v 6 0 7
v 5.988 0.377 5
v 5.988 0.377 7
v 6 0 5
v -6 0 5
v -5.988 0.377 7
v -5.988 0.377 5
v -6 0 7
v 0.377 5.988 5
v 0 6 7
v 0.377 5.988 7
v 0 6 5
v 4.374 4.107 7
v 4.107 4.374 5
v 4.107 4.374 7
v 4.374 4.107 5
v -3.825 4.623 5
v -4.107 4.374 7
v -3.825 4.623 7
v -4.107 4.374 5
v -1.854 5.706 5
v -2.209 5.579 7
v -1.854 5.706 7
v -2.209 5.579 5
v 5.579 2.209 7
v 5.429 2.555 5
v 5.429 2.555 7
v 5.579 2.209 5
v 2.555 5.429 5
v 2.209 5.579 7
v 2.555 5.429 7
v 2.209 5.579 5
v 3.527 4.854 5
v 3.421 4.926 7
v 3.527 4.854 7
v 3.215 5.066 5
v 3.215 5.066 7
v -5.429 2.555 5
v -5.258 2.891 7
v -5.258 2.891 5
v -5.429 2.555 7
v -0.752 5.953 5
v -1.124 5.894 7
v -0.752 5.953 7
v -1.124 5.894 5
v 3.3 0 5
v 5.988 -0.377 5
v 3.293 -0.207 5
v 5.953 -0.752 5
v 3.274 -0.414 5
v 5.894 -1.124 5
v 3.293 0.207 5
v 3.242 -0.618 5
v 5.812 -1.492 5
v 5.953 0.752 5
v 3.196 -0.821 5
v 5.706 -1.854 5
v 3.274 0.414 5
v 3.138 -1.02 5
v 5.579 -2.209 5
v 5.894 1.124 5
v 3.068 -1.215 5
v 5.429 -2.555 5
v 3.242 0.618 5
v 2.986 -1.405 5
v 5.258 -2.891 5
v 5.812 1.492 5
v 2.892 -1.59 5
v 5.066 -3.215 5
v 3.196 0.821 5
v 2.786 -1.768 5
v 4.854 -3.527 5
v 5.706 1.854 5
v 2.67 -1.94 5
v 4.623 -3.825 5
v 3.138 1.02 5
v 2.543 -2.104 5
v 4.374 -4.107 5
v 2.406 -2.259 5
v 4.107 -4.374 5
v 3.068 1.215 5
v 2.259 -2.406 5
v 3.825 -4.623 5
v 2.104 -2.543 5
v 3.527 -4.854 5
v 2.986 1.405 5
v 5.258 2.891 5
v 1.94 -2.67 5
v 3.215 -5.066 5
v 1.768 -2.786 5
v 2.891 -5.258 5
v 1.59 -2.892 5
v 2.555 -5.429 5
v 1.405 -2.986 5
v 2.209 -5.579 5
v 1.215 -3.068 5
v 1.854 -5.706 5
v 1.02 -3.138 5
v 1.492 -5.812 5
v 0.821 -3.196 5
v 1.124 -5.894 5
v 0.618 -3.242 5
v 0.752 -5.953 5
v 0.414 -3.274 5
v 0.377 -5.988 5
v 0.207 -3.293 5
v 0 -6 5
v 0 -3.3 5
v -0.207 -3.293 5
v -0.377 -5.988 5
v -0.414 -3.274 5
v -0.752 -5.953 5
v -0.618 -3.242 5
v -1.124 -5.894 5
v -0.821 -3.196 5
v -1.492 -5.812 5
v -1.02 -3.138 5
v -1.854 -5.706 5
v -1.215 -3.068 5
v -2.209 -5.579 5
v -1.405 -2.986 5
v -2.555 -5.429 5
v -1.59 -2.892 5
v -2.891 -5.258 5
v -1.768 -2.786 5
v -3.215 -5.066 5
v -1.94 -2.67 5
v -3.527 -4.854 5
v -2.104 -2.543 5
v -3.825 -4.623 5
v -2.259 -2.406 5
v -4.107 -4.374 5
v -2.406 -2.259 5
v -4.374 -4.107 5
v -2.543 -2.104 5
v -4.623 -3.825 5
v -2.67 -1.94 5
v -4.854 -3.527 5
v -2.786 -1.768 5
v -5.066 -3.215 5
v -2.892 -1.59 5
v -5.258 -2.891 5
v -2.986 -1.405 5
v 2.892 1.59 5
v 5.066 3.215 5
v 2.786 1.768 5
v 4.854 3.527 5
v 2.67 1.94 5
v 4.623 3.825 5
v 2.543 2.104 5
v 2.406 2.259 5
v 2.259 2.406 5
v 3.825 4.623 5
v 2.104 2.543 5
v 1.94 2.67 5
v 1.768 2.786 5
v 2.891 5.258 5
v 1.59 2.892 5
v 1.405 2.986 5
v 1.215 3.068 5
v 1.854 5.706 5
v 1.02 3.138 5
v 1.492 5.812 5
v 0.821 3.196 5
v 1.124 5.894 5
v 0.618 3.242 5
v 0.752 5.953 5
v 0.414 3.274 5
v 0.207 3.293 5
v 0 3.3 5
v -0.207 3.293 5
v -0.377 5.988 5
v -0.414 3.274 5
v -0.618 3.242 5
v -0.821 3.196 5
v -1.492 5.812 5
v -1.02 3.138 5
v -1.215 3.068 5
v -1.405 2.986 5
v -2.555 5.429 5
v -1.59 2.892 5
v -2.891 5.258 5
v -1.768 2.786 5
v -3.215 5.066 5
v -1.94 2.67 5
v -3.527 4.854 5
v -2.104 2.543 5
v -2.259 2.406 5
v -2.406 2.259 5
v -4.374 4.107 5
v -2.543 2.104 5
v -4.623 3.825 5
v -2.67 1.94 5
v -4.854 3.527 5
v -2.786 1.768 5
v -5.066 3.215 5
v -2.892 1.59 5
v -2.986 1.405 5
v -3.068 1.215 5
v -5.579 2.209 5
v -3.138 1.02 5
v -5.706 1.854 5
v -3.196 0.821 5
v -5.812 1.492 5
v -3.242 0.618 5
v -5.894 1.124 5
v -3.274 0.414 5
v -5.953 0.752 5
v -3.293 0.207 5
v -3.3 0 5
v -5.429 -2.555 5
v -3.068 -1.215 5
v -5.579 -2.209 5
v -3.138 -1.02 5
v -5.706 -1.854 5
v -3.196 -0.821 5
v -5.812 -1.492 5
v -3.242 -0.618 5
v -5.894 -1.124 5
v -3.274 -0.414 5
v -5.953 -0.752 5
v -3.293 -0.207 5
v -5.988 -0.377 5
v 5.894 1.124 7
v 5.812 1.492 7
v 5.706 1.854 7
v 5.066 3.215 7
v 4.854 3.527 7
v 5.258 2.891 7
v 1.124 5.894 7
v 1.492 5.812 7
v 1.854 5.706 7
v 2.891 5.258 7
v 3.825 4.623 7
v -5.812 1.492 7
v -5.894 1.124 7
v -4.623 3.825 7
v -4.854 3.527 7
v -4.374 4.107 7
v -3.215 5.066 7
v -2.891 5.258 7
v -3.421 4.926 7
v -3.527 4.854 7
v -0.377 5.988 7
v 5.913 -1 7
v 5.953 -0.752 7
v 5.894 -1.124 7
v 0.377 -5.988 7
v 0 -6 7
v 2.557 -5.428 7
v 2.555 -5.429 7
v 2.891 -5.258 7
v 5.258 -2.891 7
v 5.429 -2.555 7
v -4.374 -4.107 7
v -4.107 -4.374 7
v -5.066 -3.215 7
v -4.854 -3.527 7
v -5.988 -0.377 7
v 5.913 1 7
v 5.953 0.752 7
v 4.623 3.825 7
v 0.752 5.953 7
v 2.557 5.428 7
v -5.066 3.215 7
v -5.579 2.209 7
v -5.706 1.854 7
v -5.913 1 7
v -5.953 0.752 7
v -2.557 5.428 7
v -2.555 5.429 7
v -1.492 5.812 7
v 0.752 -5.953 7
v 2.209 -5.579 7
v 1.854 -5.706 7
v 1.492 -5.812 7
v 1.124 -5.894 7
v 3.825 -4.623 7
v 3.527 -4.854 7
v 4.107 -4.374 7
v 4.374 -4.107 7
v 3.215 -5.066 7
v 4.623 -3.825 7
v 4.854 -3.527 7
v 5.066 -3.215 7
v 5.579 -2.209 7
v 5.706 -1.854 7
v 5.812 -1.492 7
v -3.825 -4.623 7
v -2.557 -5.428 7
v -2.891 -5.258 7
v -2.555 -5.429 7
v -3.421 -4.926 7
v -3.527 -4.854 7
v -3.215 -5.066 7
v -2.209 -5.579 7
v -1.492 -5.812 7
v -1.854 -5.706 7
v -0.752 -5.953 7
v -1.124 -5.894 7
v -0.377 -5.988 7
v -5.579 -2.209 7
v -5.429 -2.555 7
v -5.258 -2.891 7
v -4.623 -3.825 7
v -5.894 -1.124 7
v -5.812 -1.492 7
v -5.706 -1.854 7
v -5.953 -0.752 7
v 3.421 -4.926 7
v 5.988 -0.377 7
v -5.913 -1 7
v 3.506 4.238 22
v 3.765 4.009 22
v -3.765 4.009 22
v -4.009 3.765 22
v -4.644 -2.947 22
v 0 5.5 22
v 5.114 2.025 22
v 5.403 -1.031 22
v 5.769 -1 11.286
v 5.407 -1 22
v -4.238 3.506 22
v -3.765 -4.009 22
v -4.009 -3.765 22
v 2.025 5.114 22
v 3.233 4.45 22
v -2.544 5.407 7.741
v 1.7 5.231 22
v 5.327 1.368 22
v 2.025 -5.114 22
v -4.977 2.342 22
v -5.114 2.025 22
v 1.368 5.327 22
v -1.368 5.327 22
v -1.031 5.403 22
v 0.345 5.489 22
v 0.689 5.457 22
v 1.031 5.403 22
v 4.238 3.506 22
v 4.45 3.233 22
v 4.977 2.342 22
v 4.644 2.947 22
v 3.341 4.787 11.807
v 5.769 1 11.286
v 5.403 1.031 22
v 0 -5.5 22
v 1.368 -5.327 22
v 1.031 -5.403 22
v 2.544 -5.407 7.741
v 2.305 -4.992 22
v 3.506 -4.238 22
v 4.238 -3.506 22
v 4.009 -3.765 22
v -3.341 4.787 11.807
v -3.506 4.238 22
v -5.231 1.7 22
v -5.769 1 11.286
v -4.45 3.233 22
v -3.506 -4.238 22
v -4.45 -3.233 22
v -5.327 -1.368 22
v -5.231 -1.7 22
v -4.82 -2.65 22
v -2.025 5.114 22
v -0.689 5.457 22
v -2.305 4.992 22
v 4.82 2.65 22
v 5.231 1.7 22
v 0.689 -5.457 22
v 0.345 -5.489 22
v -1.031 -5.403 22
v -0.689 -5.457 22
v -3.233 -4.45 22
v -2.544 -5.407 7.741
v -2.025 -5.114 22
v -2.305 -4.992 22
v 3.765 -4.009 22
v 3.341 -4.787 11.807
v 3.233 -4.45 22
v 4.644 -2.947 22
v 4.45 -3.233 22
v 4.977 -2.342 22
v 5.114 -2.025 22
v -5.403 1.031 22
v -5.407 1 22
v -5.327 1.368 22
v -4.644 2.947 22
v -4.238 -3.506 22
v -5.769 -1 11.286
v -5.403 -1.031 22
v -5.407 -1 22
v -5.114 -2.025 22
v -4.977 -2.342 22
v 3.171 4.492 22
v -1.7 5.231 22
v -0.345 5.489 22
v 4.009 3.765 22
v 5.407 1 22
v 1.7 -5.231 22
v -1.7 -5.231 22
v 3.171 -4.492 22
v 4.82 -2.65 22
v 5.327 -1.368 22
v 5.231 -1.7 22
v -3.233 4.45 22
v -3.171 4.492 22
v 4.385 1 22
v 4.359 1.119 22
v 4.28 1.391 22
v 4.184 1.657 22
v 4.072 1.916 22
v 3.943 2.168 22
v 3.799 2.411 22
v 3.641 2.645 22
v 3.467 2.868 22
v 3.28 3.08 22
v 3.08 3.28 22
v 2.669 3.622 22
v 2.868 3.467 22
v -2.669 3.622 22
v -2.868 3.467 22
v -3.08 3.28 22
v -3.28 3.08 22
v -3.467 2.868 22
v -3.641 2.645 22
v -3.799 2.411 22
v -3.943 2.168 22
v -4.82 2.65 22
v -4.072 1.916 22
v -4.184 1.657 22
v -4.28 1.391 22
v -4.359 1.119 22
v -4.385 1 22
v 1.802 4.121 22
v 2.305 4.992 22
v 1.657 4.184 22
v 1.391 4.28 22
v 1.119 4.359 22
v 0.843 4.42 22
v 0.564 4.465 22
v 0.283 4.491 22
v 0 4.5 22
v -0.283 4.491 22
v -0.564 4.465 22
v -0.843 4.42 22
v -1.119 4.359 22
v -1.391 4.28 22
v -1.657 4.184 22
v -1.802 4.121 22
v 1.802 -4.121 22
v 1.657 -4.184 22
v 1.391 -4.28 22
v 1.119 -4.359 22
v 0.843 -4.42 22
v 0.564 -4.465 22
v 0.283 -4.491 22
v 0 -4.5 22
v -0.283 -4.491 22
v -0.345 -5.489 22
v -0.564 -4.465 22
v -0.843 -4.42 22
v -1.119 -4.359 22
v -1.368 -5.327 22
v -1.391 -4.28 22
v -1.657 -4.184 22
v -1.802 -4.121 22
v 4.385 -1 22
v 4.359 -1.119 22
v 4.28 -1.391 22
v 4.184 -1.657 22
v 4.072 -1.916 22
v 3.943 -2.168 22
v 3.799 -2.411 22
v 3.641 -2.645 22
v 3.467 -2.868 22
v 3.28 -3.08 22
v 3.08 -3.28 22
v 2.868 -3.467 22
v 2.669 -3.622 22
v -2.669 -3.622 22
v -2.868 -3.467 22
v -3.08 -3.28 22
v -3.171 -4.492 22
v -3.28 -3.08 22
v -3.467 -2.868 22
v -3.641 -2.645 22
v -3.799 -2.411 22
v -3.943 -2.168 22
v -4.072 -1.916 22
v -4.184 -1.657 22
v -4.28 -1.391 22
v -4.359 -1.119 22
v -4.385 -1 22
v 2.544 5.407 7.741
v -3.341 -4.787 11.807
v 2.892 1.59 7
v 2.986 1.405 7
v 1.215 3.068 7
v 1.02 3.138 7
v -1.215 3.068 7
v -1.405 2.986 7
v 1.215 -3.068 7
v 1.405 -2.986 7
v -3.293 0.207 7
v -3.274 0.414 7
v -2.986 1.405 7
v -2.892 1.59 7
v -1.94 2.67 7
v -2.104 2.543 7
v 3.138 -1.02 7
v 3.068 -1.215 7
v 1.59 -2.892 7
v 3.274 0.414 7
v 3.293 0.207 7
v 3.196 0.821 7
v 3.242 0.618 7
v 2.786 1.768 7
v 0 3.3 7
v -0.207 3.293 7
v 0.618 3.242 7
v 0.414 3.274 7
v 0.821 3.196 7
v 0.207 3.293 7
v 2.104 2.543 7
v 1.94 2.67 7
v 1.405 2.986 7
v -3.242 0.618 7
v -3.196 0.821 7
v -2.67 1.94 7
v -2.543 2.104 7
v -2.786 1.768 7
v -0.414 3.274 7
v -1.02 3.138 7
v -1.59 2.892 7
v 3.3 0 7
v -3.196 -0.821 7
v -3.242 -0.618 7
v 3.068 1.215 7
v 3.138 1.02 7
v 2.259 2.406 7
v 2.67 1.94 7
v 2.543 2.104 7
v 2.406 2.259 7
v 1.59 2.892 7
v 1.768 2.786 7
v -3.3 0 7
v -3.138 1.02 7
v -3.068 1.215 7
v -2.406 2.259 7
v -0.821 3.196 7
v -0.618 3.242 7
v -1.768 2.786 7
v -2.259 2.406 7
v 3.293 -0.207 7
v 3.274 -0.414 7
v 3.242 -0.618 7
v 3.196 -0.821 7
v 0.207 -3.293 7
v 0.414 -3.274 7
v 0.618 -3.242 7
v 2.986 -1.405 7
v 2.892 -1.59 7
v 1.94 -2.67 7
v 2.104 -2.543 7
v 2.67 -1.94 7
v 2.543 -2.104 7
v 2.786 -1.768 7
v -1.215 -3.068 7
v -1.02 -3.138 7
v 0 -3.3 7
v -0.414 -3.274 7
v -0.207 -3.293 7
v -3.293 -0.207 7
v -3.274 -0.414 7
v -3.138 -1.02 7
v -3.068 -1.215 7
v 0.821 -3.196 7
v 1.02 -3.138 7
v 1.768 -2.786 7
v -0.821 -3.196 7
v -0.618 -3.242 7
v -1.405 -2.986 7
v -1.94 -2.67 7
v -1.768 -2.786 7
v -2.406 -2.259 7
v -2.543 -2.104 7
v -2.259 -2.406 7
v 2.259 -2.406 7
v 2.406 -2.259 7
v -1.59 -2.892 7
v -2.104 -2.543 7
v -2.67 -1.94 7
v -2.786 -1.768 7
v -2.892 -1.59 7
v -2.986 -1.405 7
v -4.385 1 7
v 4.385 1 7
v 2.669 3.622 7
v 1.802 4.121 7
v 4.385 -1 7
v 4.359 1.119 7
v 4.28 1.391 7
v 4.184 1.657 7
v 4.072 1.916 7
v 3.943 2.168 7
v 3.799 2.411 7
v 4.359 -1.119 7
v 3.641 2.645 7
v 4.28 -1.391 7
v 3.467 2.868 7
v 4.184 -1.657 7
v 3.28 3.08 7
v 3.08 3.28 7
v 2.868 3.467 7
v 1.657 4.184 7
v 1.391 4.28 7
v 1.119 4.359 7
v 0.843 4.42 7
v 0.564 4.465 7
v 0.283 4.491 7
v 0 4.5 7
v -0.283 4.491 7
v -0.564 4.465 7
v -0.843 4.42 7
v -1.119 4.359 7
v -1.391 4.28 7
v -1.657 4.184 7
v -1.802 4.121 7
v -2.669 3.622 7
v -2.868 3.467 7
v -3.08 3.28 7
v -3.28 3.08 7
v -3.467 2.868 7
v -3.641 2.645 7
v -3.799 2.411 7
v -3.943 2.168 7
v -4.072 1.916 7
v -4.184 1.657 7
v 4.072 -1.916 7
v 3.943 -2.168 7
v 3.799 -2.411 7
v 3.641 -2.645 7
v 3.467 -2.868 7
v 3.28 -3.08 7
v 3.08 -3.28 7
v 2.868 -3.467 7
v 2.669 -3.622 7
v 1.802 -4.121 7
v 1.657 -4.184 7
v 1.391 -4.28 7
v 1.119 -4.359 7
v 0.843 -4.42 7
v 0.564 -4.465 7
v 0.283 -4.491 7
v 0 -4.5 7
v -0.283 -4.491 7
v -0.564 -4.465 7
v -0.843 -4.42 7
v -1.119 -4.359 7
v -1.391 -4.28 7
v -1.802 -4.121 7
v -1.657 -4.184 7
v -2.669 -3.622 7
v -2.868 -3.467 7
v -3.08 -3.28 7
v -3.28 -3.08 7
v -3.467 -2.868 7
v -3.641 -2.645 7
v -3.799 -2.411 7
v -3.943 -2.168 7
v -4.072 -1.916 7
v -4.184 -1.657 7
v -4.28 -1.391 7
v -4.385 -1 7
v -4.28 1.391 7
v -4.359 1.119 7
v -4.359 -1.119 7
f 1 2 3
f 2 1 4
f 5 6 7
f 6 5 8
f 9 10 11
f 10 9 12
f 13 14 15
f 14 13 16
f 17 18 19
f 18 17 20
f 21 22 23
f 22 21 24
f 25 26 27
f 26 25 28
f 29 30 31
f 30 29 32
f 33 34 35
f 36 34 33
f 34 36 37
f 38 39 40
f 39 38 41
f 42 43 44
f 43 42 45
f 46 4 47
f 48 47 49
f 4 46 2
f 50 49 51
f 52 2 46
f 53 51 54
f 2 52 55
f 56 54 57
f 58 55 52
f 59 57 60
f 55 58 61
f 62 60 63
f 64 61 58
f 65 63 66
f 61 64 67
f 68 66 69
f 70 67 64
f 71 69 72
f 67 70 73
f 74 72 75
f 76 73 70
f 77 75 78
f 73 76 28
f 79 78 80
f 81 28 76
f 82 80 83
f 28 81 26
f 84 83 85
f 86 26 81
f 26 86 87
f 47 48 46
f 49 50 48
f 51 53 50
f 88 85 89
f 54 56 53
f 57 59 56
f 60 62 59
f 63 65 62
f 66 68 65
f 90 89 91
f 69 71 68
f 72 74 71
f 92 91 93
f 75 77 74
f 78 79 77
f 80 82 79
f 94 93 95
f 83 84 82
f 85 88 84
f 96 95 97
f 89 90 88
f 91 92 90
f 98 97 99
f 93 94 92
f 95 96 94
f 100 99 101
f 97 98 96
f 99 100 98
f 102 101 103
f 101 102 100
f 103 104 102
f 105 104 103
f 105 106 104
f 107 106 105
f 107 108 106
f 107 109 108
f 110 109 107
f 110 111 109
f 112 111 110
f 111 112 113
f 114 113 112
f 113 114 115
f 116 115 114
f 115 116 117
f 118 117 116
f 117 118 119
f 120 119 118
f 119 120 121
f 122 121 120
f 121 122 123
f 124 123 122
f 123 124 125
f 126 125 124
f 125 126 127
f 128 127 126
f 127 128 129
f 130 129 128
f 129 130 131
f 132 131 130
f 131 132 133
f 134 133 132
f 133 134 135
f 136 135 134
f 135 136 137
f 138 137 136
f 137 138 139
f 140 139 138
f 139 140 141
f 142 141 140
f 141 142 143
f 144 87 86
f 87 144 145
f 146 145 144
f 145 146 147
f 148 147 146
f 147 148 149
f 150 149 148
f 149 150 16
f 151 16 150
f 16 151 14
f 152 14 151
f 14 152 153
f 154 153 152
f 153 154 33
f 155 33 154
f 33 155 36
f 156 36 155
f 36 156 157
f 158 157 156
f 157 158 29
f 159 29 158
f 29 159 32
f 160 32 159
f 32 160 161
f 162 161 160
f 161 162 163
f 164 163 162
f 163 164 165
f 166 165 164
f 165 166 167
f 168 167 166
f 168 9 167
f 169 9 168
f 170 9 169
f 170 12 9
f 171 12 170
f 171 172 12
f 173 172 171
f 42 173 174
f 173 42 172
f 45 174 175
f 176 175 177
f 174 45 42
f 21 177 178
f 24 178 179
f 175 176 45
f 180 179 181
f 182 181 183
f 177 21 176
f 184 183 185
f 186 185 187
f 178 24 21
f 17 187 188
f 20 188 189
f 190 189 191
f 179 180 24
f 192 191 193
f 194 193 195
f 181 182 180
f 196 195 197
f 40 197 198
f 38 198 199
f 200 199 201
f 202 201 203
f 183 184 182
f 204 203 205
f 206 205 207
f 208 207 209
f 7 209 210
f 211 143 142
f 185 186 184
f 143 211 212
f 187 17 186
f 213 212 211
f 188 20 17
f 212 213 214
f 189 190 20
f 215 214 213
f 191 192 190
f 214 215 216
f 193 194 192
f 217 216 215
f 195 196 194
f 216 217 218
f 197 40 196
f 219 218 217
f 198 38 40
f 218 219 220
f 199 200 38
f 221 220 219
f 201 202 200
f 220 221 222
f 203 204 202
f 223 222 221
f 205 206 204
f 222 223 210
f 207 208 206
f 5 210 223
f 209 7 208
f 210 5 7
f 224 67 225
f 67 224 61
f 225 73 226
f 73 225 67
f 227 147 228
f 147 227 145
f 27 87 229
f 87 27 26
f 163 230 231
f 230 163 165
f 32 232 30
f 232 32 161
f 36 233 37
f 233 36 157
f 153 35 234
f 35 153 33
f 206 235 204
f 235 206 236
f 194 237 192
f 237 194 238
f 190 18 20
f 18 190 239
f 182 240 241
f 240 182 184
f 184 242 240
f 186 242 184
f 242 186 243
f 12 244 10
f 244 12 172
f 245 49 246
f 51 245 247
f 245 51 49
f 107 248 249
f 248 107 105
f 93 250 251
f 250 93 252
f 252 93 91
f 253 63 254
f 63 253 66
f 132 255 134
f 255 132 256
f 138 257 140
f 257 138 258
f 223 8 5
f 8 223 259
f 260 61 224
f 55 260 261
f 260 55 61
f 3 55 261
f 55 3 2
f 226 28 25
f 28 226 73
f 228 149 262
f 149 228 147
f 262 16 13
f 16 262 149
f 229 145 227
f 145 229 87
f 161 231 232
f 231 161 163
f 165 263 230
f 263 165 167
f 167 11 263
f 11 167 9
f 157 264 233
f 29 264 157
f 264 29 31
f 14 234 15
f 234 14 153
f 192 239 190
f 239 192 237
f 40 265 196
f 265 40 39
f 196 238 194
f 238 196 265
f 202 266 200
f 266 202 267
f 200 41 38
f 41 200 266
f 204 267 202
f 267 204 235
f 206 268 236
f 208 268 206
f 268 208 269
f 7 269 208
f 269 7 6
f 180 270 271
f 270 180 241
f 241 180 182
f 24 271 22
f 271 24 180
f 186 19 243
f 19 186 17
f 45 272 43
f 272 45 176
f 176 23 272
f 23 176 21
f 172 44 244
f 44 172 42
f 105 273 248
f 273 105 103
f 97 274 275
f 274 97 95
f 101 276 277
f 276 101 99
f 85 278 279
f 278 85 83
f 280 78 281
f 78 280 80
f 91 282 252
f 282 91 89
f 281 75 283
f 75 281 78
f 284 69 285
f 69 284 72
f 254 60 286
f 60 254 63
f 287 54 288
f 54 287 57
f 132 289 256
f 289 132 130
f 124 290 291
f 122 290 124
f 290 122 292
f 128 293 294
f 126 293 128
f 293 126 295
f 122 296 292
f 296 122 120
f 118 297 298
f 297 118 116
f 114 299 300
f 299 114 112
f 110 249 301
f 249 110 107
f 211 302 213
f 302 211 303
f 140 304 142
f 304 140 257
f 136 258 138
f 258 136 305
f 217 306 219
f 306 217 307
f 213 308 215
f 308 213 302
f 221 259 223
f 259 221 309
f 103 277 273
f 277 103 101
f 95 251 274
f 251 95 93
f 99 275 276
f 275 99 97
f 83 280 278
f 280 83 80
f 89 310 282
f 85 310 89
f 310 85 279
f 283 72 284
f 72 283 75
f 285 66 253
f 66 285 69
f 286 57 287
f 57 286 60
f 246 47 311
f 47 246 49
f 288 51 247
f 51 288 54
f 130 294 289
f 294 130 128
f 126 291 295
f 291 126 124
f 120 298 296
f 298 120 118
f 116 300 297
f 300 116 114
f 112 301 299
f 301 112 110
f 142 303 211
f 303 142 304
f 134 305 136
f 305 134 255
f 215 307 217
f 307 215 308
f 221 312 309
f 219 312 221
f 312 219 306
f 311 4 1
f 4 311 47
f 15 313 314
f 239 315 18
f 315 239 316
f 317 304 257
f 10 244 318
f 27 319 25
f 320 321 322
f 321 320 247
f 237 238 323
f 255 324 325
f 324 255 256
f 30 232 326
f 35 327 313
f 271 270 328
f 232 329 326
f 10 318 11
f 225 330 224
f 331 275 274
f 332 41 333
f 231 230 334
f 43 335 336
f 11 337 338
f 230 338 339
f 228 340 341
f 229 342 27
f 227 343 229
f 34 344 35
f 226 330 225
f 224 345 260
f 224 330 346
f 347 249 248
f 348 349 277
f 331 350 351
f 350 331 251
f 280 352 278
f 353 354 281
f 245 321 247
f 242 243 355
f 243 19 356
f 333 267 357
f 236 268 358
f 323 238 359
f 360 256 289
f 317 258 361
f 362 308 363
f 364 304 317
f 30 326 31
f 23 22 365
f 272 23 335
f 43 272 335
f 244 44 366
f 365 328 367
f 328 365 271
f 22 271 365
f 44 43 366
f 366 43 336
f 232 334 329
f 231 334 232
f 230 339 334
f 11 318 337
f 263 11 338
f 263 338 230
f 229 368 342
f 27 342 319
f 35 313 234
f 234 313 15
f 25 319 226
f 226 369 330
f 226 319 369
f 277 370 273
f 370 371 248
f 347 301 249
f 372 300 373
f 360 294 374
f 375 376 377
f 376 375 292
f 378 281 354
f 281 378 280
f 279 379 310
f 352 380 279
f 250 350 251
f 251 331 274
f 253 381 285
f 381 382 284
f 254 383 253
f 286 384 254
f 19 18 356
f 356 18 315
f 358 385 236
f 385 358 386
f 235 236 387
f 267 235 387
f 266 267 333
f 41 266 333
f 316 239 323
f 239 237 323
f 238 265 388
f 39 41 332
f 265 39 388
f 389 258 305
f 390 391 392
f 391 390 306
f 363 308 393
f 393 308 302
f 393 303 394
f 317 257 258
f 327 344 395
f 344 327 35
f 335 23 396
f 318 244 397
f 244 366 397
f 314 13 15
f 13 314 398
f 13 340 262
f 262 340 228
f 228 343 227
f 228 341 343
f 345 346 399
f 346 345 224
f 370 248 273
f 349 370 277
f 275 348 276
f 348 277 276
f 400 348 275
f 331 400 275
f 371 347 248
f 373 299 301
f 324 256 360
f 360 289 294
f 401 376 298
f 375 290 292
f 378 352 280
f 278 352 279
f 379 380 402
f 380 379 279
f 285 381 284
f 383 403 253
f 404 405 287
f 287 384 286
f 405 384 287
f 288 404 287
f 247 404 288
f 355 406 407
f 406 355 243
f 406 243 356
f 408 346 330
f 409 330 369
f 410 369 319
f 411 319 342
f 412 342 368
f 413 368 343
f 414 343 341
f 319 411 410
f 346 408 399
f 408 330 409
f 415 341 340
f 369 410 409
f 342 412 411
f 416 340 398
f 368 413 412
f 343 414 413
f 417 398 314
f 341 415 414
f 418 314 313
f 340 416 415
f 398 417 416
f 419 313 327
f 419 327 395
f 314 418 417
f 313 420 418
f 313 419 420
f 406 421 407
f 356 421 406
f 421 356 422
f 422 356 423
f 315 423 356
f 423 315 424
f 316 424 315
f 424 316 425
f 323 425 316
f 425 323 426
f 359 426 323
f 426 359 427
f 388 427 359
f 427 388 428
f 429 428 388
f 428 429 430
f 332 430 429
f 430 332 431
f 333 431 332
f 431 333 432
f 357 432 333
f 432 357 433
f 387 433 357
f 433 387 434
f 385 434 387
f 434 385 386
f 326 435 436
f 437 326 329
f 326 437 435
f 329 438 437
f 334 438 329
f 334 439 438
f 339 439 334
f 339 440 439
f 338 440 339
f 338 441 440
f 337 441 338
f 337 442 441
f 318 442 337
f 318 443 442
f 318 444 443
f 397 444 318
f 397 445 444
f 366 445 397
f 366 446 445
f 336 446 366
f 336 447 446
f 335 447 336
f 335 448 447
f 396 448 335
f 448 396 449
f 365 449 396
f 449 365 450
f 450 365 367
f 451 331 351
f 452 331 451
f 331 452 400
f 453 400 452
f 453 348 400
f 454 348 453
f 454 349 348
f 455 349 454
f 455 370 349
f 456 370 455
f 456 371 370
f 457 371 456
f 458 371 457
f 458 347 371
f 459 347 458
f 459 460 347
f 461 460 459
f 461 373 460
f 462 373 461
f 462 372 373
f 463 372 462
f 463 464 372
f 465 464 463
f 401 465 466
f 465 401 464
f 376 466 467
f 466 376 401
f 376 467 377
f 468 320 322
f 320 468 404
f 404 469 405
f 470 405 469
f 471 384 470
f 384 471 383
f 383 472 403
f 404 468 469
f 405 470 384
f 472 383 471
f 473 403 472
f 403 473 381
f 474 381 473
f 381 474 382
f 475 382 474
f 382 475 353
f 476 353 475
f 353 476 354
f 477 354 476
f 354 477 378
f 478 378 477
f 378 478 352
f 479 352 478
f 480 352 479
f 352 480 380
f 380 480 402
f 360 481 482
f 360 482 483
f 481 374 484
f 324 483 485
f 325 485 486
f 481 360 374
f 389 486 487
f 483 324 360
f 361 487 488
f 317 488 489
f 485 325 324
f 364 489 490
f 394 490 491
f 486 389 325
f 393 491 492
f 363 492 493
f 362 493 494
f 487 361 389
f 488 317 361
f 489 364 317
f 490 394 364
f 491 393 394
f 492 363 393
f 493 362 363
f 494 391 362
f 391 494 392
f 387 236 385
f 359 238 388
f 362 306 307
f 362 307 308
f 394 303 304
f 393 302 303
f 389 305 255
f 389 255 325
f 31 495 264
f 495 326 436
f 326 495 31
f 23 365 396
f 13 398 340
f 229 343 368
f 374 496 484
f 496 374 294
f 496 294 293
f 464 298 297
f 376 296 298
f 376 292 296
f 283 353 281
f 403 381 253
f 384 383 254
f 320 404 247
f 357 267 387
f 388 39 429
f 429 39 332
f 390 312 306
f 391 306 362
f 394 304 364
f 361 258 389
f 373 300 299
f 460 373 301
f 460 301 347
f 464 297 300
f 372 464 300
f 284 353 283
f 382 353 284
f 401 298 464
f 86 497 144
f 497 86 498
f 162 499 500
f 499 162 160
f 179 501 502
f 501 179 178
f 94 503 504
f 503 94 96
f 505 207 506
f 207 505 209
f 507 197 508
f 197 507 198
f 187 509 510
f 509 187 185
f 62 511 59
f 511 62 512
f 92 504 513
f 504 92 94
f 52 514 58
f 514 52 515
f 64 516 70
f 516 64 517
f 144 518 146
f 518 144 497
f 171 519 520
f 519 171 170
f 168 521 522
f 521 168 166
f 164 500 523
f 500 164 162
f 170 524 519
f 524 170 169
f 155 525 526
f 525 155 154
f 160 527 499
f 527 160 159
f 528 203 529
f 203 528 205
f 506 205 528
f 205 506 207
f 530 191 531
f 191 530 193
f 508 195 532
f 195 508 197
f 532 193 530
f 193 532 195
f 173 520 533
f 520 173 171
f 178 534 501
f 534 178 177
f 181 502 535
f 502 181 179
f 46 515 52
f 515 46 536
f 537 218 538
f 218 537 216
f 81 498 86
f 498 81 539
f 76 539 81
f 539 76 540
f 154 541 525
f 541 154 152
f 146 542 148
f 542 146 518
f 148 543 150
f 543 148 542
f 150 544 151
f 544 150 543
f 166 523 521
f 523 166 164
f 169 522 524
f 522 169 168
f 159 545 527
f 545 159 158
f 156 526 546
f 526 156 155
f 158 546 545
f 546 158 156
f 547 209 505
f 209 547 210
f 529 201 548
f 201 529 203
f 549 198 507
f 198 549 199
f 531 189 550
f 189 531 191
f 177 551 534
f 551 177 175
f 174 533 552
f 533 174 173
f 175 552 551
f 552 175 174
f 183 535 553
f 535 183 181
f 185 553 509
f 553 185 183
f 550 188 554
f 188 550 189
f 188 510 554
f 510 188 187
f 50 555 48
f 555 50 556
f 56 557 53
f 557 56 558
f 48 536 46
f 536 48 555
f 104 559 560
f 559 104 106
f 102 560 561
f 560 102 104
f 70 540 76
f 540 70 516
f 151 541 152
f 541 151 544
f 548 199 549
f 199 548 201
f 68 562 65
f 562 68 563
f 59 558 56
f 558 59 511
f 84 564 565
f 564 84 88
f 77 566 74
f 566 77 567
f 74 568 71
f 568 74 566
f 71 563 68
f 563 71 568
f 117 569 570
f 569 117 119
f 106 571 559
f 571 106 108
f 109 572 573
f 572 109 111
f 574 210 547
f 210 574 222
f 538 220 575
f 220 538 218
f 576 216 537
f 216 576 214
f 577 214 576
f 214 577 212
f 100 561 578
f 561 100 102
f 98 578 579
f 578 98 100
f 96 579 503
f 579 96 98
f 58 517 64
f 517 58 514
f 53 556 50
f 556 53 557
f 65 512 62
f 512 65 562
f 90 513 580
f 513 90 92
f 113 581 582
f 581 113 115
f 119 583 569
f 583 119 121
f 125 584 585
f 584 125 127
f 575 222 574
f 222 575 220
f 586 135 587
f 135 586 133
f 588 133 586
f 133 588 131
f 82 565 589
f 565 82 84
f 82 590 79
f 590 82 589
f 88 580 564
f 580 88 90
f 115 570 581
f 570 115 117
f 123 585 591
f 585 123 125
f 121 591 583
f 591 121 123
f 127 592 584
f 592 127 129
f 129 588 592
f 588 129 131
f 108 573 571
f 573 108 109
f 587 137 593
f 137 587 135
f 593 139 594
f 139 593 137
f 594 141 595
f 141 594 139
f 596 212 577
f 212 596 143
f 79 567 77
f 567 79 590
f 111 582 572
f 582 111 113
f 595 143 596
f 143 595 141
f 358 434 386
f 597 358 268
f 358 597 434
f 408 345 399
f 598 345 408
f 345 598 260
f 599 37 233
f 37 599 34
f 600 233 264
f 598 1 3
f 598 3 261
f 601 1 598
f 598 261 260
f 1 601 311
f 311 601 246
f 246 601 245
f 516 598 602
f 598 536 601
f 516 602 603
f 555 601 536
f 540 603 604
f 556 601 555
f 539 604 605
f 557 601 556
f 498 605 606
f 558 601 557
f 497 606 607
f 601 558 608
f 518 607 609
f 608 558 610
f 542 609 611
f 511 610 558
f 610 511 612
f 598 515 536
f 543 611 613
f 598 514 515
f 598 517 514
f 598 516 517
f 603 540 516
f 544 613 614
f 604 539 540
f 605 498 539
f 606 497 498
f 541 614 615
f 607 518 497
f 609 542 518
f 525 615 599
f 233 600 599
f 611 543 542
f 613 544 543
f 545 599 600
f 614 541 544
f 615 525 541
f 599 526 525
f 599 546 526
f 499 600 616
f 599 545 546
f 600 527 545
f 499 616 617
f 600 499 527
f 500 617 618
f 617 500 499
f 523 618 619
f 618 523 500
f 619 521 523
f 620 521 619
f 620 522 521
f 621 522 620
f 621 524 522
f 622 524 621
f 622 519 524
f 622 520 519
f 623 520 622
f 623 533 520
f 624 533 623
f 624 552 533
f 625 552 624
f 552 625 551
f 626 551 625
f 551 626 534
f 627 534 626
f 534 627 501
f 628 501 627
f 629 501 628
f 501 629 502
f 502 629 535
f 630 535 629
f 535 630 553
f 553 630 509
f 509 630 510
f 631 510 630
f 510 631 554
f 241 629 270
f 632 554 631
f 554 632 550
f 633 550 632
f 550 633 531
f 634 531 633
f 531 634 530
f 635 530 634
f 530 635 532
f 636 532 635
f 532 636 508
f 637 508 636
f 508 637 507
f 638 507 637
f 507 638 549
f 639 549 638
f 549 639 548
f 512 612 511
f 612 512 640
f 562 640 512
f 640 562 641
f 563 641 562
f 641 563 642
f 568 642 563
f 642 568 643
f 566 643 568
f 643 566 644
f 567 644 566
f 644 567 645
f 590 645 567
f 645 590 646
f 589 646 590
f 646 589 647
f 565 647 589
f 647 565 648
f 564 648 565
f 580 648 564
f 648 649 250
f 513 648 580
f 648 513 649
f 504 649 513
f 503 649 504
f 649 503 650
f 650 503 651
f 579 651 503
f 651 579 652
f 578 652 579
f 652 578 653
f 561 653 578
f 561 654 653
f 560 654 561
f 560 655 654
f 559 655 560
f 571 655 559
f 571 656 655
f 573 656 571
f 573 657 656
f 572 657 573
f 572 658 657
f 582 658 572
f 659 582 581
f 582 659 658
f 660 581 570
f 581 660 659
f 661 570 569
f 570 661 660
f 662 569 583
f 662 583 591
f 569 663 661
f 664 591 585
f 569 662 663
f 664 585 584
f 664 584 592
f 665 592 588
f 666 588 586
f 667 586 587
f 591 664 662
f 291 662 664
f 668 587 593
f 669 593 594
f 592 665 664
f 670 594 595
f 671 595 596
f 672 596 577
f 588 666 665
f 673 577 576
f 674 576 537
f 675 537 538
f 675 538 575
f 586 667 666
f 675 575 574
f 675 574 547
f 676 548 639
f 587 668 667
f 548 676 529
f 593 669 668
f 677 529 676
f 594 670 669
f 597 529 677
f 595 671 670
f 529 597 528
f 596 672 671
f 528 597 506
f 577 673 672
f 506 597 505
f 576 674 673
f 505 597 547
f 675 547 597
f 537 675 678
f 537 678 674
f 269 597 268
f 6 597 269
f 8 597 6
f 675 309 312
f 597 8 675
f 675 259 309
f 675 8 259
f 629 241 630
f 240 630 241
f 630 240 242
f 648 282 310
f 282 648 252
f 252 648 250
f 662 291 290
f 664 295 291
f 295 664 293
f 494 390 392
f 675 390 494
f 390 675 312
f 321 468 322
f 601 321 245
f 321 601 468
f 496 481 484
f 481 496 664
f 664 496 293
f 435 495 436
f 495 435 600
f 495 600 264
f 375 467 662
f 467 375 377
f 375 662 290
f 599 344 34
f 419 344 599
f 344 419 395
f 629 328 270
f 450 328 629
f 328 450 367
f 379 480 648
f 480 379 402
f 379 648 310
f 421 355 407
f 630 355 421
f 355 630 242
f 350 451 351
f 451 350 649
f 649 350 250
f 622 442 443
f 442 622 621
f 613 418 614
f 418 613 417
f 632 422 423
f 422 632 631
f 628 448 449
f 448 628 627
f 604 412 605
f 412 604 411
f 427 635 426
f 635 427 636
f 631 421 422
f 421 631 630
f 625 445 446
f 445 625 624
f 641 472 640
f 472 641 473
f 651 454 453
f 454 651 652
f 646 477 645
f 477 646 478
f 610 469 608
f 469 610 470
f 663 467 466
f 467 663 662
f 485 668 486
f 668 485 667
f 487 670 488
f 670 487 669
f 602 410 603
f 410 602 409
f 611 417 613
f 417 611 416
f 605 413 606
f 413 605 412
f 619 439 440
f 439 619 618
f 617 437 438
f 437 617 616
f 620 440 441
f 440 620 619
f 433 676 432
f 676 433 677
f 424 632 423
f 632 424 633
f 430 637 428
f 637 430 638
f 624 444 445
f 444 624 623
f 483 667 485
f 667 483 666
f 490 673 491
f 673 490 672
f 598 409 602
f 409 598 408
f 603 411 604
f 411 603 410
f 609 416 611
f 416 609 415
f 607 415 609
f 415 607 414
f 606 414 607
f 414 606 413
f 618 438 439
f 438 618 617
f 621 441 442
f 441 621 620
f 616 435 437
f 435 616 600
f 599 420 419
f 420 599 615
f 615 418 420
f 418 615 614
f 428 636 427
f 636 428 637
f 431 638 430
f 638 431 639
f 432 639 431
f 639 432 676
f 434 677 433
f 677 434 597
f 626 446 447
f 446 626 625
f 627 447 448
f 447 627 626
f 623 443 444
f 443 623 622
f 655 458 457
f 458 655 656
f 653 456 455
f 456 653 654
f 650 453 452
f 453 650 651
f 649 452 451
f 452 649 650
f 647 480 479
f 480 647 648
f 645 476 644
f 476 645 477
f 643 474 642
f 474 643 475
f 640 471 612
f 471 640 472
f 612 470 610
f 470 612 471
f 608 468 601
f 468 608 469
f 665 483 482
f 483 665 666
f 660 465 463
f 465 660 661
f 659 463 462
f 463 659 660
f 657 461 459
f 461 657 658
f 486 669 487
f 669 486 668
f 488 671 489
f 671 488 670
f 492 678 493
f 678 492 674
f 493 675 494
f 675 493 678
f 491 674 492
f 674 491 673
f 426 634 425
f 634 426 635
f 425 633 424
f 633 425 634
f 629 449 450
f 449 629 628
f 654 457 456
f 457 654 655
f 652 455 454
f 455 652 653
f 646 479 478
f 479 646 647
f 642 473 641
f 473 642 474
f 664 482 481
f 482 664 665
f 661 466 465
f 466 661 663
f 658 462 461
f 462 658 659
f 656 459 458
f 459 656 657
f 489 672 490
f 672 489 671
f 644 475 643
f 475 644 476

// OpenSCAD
difference() {
	union() {
		translate(v = [0, 0, 5]) {
			cylinder($fn = 100, d = 12, h = 2);
		}
		translate(v = [0, 0, 7]) {
			cylinder($fn = 100, d1 = 12, d2 = 11, h = 15);
		}
	}
	cylinder($fn = 100, d = 6.6000000000, h = 100);
	translate(v = [0, 0, 7]) {
		translate(v = [-8.0000000000, -1.0000000000, 0]) {
			cube(size = [16, 2, 100]);
		}
	}
	rotate(a = [0, 0, 0.0000000000]) {
		translate(v = [0, 0, 7]) {
			translate(v = [-8.0000000000, -0.5000000000, 0]) {
				cube(size = [16, 1, 100]);
			}
		}
	}
	rotate(a = [0, 0, 60.0000000000]) {
		translate(v = [0, 0, 7]) {
			translate(v = [-8.0000000000, -0.5000000000, 0]) {
				cube(size = [16, 1, 100]);
			}
		}
	}
	rotate(a = [0, 0, 120.0000000000]) {
		translate(v = [0, 0, 7]) {
			translate(v = [-8.0000000000, -0.5000000000, 0]) {
				cube(size = [16, 1, 100]);
			}
		}
	}
	rotate(a = [0, 0, 180.0000000000]) {
		translate(v = [0, 0, 7]) {
			translate(v = [-8.0000000000, -0.5000000000, 0]) {
				cube(size = [16, 1, 100]);
			}
		}
	}
	rotate(a = [0, 0, 240.0000000000]) {
		translate(v = [0, 0, 7]) {
			translate(v = [-8.0000000000, -0.5000000000, 0]) {
				cube(size = [16, 1, 100]);
			}
		}
	}
	rotate(a = [0, 0, 300.0000000000]) {
		translate(v = [0, 0, 7]) {
			translate(v = [-8.0000000000, -0.5000000000, 0]) {
				cube(size = [16, 1, 100]);
			}
		}
	}
	translate(v = [0, 0, 7]) {
		cylinder($fn = 100, d1 = 9, d2 = 9, h = 15.1000000000);
	}
}
